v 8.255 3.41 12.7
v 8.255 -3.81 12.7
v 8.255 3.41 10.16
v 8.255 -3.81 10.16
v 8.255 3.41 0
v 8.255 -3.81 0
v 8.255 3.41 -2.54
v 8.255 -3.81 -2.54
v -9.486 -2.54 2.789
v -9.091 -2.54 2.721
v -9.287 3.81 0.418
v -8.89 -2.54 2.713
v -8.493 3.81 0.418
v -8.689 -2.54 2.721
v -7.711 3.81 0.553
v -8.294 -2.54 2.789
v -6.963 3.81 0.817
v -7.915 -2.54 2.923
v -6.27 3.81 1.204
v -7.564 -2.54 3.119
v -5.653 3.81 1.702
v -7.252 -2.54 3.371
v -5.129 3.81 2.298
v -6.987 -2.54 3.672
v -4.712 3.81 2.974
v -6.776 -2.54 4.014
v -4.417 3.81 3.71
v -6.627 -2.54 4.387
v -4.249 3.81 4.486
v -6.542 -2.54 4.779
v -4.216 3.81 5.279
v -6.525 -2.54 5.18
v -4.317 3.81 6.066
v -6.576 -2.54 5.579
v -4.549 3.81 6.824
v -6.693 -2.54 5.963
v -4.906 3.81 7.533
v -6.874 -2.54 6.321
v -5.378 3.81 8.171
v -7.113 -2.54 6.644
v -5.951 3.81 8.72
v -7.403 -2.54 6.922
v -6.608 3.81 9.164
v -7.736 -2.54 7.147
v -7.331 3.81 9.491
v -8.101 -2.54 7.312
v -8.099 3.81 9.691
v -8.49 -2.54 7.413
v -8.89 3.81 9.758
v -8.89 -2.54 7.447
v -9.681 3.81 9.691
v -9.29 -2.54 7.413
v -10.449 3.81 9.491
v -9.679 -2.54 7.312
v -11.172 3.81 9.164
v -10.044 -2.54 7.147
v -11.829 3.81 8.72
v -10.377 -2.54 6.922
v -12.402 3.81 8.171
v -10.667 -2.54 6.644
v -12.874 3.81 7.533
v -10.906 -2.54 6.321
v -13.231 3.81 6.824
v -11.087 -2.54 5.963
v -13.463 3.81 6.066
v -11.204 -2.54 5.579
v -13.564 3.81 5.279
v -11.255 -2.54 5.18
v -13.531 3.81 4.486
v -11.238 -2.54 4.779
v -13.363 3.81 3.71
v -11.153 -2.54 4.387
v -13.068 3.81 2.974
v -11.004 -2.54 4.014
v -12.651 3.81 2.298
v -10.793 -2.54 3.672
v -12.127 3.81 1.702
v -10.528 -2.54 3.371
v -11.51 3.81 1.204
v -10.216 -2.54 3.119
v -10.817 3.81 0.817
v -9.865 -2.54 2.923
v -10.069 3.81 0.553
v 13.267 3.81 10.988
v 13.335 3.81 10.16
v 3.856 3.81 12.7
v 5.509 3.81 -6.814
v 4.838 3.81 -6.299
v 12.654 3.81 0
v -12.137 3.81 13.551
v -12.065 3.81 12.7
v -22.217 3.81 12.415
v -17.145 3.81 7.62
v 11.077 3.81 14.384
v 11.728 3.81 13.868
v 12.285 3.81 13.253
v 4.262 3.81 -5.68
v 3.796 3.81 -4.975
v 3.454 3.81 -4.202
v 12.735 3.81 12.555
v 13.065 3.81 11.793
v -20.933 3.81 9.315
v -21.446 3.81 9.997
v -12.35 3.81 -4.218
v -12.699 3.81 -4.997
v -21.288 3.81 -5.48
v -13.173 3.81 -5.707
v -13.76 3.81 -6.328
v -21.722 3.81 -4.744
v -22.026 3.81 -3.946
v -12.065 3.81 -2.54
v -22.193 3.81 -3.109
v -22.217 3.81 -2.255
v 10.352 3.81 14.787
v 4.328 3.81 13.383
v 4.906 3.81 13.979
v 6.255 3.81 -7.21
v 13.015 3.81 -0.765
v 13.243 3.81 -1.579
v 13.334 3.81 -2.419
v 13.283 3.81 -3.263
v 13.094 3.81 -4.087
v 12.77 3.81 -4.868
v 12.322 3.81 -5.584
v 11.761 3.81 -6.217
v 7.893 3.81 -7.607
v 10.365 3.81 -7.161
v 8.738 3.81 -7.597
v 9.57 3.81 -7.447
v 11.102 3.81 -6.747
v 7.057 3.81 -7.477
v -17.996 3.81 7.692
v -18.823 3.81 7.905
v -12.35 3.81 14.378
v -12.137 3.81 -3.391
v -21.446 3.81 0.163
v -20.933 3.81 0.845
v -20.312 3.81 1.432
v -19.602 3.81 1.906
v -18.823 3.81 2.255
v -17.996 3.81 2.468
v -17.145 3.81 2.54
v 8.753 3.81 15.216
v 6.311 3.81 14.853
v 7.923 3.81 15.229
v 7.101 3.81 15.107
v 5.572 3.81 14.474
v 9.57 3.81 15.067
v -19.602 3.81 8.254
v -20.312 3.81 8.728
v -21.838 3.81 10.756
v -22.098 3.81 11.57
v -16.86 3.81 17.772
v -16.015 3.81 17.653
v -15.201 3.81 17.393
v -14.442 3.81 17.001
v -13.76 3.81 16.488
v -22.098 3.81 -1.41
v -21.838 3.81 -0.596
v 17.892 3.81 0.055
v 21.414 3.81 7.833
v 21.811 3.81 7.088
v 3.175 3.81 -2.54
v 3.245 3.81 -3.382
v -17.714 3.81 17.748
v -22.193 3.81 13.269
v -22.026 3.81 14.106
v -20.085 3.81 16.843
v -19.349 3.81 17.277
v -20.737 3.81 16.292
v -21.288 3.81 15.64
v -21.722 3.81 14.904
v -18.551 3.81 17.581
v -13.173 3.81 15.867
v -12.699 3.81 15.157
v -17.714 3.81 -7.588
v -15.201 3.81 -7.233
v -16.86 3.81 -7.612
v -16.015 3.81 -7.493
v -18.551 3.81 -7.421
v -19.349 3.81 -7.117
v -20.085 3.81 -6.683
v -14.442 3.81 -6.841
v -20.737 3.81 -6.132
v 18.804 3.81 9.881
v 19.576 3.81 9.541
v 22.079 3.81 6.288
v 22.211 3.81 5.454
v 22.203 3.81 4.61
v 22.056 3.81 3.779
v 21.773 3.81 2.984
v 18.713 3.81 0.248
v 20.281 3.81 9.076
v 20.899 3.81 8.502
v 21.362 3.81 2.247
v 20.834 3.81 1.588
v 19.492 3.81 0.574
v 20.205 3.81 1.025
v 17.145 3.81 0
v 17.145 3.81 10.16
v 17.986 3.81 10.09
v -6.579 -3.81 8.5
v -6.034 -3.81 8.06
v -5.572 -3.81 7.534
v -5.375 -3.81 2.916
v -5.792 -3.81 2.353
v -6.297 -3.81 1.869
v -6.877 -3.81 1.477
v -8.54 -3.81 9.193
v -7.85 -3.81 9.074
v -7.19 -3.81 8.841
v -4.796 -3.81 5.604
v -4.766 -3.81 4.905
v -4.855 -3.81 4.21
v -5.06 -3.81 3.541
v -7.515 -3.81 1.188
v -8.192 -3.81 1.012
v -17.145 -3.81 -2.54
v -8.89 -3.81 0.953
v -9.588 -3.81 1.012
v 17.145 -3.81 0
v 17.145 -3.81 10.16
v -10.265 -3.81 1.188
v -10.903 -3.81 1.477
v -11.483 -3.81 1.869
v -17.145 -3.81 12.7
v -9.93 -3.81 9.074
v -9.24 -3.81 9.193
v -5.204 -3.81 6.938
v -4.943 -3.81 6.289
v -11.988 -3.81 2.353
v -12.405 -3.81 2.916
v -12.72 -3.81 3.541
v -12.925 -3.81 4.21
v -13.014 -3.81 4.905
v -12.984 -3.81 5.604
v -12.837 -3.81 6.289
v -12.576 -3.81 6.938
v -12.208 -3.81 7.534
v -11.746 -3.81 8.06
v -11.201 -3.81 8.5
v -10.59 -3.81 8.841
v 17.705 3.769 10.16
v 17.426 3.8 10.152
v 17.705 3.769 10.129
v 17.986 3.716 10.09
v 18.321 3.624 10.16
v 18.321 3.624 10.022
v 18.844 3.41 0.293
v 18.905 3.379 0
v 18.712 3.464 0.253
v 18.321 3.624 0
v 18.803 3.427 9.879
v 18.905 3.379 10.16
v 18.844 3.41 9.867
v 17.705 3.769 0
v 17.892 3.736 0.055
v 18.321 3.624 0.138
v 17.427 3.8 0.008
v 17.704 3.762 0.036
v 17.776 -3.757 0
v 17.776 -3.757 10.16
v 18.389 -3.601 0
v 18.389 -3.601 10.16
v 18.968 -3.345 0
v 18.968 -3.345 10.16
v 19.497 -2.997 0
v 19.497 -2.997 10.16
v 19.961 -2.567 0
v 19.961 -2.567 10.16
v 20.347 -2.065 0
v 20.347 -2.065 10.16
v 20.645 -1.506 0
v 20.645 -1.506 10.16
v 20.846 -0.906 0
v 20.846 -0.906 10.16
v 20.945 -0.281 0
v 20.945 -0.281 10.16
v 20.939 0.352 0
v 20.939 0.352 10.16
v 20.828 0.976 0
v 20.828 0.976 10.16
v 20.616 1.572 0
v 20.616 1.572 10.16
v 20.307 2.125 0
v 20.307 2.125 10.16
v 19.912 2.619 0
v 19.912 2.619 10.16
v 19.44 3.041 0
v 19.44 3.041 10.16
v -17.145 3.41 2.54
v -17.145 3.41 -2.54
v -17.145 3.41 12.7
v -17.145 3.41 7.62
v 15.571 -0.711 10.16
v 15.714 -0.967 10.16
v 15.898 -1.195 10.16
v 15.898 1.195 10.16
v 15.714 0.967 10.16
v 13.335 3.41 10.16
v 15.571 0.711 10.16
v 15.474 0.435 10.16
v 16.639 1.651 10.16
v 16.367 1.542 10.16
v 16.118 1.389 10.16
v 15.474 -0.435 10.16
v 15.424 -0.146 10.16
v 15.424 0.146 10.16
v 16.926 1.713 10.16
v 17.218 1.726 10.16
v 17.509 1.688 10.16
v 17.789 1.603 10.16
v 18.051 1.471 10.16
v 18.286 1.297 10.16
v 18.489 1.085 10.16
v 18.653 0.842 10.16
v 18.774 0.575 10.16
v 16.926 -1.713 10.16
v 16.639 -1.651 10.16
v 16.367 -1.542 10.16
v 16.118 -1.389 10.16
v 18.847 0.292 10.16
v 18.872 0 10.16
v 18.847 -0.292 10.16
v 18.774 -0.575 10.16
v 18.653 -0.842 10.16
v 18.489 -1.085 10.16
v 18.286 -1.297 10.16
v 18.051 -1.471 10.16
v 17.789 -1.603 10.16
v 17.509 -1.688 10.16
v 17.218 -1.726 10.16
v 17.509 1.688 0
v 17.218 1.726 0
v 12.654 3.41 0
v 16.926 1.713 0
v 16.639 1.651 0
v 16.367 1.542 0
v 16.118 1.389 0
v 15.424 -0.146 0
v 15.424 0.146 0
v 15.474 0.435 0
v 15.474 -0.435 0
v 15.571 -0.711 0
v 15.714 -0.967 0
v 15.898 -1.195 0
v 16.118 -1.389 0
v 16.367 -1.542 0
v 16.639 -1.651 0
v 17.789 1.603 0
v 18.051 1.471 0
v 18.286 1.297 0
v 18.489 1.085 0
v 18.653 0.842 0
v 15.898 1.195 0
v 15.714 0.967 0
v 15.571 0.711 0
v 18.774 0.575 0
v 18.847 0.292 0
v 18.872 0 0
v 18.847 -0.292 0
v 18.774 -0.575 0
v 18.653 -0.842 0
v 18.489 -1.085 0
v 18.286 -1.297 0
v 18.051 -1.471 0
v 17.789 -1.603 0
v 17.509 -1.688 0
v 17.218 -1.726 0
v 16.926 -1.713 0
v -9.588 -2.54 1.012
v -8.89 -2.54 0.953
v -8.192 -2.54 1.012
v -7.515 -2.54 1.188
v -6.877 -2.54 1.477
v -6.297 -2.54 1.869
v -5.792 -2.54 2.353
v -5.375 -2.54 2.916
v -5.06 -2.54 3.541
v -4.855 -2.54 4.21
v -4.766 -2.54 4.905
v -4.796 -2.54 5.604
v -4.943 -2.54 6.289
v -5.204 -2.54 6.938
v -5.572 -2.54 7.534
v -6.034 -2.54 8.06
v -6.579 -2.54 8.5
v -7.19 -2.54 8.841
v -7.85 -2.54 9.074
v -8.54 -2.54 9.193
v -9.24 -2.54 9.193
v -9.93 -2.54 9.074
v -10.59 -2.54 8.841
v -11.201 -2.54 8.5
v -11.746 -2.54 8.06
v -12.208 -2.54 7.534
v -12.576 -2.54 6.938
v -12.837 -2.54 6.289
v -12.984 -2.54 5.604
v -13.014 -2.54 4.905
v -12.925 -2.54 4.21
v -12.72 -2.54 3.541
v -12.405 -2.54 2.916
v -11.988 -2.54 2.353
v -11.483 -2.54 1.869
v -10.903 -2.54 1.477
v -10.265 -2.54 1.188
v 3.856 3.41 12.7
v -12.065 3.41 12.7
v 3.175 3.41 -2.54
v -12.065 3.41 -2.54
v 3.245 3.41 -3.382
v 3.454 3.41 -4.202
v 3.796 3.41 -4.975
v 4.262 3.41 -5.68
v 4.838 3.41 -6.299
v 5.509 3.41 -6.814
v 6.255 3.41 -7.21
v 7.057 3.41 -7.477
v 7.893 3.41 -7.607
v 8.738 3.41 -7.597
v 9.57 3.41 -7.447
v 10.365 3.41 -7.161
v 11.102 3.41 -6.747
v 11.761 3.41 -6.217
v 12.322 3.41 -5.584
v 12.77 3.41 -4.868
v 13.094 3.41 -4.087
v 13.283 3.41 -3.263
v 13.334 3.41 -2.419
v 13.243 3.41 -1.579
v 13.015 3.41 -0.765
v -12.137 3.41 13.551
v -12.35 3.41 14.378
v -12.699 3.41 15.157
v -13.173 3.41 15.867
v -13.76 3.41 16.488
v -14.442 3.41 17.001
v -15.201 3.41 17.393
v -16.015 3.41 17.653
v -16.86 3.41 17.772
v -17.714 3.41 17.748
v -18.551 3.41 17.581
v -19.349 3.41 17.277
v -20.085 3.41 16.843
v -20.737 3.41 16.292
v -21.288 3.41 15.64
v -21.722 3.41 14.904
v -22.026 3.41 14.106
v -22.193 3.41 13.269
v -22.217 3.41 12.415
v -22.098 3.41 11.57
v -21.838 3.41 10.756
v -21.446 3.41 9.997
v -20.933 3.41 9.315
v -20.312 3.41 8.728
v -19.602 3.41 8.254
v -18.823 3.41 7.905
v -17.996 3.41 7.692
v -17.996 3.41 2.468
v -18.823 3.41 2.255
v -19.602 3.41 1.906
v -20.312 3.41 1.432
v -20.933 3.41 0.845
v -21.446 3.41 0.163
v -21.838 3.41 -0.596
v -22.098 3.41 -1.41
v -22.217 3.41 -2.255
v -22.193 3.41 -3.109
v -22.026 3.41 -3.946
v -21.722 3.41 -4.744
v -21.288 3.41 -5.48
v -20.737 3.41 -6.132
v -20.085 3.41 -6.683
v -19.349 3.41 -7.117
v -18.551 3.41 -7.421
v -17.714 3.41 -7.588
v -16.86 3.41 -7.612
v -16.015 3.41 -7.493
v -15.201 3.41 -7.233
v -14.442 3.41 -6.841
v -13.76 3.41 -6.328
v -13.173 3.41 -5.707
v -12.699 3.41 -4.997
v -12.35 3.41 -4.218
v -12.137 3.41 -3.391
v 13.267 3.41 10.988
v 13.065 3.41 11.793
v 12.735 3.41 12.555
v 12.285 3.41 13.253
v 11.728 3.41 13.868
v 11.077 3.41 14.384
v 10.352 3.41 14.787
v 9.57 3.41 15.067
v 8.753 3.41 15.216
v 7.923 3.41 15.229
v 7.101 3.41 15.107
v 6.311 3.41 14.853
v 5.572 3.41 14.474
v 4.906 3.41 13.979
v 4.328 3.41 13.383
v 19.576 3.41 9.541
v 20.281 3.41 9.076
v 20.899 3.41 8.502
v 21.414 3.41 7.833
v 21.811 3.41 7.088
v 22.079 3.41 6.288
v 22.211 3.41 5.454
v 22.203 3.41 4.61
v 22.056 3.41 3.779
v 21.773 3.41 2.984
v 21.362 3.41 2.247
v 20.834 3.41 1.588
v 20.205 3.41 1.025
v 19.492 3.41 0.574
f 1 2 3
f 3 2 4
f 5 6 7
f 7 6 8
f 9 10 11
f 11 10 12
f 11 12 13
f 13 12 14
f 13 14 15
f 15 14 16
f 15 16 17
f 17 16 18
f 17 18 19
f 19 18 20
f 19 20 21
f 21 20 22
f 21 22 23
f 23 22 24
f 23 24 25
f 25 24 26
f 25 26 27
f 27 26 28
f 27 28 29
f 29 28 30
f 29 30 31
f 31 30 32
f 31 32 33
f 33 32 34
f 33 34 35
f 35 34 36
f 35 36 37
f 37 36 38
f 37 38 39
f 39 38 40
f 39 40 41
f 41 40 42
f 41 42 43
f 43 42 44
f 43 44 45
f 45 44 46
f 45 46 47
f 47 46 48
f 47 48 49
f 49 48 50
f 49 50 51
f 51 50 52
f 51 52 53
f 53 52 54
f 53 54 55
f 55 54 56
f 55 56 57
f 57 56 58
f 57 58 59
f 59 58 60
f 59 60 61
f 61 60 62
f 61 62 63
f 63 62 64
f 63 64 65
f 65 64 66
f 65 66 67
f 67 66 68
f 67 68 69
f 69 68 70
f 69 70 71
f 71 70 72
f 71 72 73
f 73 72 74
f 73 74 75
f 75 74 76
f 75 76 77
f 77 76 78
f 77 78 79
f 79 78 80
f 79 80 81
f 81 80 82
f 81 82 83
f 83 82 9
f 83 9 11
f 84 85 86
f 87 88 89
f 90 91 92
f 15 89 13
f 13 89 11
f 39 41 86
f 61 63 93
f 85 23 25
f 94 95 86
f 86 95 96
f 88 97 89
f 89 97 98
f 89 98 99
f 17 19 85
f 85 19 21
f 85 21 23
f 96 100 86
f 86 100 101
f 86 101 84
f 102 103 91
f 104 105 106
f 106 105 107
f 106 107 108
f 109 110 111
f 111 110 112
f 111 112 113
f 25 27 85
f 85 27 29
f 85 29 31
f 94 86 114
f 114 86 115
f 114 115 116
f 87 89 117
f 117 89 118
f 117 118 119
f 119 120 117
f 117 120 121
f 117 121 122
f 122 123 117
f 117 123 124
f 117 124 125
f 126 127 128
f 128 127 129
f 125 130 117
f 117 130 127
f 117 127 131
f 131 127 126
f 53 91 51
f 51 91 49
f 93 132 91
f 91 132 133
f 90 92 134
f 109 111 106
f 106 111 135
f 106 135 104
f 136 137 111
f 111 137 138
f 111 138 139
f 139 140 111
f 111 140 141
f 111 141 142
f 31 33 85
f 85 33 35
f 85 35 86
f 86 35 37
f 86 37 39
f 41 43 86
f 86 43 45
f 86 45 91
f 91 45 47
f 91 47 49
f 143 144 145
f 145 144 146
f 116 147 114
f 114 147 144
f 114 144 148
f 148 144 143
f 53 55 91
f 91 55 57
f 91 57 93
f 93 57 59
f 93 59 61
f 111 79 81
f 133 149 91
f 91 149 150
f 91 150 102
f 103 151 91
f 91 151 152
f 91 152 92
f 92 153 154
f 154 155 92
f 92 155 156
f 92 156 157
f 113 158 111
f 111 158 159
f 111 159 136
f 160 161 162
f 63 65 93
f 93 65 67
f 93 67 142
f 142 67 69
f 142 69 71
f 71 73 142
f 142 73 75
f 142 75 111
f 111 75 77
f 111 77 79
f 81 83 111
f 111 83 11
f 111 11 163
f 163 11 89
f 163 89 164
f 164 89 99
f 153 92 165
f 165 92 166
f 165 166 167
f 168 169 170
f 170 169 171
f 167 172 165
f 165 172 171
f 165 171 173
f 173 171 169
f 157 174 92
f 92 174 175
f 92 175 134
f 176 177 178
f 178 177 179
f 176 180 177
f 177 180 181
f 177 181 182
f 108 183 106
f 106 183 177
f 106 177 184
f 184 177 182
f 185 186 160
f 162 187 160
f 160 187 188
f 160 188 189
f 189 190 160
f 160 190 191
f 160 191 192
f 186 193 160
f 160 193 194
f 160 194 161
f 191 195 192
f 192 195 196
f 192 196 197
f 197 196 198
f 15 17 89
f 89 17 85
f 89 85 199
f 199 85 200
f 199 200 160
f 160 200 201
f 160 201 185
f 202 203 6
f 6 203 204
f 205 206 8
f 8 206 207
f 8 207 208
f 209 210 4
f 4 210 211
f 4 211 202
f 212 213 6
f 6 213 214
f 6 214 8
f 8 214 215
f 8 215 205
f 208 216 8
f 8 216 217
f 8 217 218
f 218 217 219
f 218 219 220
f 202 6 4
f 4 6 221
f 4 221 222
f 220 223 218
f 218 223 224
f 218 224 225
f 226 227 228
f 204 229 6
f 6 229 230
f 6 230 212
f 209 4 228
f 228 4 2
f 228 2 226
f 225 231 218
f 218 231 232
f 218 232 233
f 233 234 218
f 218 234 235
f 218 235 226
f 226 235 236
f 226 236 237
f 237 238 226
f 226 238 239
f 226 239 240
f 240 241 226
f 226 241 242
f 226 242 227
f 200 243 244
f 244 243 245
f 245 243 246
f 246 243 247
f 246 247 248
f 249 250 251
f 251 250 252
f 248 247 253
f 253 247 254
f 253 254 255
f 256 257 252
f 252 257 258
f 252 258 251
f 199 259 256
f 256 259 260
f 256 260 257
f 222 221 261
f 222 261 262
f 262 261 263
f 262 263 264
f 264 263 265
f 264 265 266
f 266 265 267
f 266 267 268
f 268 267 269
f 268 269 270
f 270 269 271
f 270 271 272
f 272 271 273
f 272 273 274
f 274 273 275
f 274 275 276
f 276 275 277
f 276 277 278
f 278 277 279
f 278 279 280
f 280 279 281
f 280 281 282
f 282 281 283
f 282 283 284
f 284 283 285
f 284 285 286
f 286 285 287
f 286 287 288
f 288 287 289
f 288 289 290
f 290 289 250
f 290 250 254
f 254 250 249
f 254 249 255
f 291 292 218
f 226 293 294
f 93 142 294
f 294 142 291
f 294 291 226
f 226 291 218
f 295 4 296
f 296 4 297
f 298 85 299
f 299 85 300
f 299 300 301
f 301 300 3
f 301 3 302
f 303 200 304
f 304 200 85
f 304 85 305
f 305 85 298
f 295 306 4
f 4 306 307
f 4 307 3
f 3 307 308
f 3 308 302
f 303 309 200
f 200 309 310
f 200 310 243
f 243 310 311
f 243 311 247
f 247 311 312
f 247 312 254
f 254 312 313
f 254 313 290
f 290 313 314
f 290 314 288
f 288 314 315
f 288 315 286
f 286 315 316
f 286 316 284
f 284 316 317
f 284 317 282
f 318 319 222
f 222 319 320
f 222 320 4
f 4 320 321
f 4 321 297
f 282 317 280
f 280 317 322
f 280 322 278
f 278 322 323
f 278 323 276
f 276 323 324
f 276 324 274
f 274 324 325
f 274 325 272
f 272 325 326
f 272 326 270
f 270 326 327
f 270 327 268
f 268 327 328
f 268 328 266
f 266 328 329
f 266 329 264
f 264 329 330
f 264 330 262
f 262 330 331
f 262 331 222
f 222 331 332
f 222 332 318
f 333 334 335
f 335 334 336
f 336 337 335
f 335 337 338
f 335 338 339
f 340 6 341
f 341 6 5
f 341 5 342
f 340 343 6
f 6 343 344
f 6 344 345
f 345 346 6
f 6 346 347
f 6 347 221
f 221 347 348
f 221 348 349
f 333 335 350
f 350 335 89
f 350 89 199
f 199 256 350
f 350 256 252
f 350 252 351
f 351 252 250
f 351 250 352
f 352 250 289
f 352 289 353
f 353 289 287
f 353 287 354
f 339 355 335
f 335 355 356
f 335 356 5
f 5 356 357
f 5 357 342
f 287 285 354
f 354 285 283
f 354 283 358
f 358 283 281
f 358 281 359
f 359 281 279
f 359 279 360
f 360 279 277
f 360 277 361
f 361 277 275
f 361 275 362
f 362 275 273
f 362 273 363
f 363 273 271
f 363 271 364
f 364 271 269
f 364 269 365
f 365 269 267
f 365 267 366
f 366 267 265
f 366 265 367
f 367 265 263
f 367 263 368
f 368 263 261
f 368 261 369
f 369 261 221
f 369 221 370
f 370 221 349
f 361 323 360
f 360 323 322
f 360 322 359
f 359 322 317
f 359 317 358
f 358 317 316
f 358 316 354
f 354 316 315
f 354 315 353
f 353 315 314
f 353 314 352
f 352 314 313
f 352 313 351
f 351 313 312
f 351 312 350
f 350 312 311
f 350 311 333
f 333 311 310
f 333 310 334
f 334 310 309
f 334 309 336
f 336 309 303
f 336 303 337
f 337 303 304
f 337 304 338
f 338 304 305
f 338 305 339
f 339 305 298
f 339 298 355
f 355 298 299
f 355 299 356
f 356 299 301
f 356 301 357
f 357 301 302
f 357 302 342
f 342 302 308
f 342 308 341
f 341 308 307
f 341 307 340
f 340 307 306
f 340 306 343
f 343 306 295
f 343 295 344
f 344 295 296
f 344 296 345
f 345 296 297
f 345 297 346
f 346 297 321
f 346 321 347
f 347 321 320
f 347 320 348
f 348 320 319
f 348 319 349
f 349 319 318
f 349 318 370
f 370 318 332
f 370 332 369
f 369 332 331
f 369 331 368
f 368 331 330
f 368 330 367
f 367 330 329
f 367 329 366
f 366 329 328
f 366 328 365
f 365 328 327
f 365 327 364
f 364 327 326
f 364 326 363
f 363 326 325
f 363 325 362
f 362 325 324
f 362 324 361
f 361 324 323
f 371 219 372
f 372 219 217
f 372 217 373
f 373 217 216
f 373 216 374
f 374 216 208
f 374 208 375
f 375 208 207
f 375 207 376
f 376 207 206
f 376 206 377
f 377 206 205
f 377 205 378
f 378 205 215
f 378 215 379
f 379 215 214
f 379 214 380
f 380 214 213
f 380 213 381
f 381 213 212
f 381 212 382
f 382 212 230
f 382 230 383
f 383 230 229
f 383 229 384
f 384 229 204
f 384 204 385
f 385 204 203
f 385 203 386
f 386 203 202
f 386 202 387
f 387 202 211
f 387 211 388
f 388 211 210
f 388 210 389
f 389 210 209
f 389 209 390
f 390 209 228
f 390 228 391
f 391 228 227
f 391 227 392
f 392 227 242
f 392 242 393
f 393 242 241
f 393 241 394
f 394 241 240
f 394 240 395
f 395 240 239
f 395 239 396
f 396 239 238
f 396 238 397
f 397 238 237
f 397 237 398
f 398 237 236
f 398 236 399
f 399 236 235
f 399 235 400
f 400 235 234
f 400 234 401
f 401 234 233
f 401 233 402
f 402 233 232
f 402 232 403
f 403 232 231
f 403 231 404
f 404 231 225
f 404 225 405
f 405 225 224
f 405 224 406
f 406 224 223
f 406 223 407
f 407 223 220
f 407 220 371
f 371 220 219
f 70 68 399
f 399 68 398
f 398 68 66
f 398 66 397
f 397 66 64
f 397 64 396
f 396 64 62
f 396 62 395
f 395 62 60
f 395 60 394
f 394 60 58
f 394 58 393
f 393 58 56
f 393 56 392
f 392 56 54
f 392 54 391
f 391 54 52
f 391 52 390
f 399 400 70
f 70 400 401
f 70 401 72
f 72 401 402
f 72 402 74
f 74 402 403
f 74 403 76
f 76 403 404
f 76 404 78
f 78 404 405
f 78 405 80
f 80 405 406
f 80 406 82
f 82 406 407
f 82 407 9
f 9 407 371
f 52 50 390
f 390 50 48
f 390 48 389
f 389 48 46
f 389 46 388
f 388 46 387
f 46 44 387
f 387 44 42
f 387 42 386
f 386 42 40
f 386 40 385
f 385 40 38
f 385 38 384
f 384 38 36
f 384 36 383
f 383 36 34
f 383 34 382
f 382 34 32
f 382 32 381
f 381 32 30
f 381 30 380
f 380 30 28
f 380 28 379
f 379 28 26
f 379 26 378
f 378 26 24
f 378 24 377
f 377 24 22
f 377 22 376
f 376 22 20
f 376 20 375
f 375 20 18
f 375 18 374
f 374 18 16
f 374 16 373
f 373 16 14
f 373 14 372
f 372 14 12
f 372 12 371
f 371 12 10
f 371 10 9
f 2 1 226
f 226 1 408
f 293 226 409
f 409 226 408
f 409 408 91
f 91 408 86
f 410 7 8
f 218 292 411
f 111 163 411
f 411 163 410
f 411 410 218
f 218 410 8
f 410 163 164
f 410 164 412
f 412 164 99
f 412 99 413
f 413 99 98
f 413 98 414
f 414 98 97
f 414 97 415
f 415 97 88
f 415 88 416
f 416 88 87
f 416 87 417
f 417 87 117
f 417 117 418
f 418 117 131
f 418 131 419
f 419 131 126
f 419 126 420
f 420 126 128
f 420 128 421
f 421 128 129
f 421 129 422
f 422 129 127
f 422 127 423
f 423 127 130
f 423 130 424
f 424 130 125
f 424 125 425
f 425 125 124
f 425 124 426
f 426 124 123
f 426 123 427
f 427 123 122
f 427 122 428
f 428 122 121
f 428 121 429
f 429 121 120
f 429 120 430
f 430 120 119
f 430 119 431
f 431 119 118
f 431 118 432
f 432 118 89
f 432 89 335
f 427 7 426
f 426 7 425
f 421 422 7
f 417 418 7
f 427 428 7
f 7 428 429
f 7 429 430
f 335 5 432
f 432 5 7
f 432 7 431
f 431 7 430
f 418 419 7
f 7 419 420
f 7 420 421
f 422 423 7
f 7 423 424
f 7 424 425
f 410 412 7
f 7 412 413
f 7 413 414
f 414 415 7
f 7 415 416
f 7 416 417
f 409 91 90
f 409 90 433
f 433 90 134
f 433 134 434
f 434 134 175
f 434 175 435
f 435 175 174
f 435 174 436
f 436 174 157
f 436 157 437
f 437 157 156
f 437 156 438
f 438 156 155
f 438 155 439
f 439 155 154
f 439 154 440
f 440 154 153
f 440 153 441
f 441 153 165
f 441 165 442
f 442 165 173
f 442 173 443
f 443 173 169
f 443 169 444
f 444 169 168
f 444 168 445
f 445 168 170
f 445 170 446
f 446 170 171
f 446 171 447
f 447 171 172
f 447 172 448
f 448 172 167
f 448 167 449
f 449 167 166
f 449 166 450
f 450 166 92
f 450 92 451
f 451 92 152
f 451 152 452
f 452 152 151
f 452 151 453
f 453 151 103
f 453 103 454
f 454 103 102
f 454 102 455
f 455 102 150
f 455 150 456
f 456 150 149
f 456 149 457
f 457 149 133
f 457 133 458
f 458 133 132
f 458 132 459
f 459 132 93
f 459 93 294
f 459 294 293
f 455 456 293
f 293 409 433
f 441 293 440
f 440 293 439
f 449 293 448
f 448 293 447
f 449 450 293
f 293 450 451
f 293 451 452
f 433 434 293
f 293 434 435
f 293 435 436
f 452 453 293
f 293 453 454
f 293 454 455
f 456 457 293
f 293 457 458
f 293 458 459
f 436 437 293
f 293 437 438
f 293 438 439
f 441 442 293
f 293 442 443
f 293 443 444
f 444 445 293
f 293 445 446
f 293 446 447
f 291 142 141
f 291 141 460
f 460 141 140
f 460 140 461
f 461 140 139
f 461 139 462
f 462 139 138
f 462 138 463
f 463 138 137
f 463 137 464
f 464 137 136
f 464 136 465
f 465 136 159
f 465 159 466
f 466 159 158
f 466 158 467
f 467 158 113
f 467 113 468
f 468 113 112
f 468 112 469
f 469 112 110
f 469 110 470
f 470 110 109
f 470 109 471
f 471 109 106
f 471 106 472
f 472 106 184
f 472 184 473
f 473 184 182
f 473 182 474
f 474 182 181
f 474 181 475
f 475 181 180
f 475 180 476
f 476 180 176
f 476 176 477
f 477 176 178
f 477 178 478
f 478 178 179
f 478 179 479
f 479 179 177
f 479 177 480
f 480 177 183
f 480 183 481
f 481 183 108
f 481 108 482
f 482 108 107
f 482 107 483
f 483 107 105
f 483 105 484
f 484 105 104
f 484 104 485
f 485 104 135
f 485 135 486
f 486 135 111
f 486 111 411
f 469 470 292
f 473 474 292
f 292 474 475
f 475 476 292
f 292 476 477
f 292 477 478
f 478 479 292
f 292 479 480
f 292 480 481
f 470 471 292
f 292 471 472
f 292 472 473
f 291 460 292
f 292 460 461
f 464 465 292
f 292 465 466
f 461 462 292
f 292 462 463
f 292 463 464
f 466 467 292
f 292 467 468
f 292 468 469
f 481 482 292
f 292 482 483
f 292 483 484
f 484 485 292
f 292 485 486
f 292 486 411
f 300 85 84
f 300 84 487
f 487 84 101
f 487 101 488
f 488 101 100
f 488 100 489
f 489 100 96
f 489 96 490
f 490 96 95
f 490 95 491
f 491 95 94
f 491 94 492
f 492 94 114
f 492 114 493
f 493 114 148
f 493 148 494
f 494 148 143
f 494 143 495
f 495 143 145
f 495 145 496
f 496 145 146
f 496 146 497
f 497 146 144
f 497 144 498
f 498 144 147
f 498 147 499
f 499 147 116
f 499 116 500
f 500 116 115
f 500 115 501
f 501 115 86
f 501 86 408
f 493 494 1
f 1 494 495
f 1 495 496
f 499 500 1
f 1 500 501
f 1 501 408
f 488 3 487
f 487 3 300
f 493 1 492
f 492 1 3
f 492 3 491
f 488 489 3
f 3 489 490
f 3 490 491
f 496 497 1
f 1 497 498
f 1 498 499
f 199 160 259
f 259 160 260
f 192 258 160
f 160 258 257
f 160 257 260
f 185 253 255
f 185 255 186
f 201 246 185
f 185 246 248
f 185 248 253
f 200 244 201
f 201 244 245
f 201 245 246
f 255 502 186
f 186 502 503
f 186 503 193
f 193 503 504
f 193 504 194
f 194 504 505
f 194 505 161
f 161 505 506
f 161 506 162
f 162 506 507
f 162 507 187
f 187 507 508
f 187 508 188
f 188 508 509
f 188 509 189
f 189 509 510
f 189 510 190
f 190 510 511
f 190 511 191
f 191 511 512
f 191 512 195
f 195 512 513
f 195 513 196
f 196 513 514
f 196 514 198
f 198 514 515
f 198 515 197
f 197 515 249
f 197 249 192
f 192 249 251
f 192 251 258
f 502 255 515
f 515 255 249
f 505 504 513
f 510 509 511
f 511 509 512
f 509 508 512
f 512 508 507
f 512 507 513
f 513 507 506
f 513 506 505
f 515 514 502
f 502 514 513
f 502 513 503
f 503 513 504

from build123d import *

# Parameters (mm, degrees)
BOSS_EXTRUDE1_DEPTH   = 10.16
F_4_CLEARANCE_HOLE1_D = 3.4544
SKETCH4_R             = 1.905
CUT_EXTRUDE1_DEPTH    = 8.62
CUT_EXTRUDE1_TAPER    = -20
SKETCH5_R             = 4.1275
CUT_EXTRUDE2_DEPTH    = 1.27
SKETCH6_W             = 25.4
SKETCH6_H             = 2.54
BOSS_EXTRUDE2_DEPTH   = 7.62
SKETCH7_R             = 5.08
PRINTTABS_DEPTH       = 0.4


with BuildPart() as part:
    # Sketch1 → Boss-Extrude1 (new body)
    with BuildSketch(Plane.XY):
        with BuildLine():
            Line((-17.145, -3.81), (17.145, -3.81))
            ThreePointArc((17.145, -3.81), (20.955, 0), (17.145, 3.81))
            Line((17.145, 3.81), (-17.145, 3.81))
            Line((-17.145, 3.81), (-17.145, -3.81))
        make_face()
    extrude(amount=BOSS_EXTRUDE1_DEPTH)

    # #4 Clearance Hole1 (through all)
    with Locations(Plane.XY.offset(10.16)):
        with Locations((17.145, 0)):
            Hole(F_4_CLEARANCE_HOLE1_D / 2)

    # Sketch4 → Cut-Extrude1 (cut, through all)
    with BuildSketch(Plane(origin=(0, -3.81, 0), x_dir=(1, 0, 0), z_dir=(0, 1, 0))):
        with Locations((-8.89, -5.08)):
            Circle(SKETCH4_R)
    extrude(amount=CUT_EXTRUDE1_DEPTH, taper=CUT_EXTRUDE1_TAPER, mode=Mode.SUBTRACT)

    # Sketch5 → Cut-Extrude2 (cut)
    with BuildSketch(Plane.XZ.offset(3.81)):
        with Locations((-8.89, 5.08)):
            Circle(SKETCH5_R)
    extrude(amount=-CUT_EXTRUDE2_DEPTH, mode=Mode.SUBTRACT)

    # Sketch6 → Boss-Extrude2 (add, through all)
    with BuildSketch(Plane.XZ.offset(3.81)):
        with Locations((-4.445, 11.43)):
            Rectangle(SKETCH6_W, SKETCH6_H)
        with Locations((-4.445, -1.27)):
            Rectangle(SKETCH6_W, SKETCH6_H)
    extrude(amount=-BOSS_EXTRUDE2_DEPTH)

    # Sketch7 → PrintTabs (add)
    with BuildSketch(Plane(origin=(0, 3.81, 0), x_dir=(1, 0, 0), z_dir=(0, 1, 0))):
        with Locations((8.255, 2.54)):
            Circle(SKETCH7_R)
        with Locations((-17.145, -12.7)):
            Circle(SKETCH7_R)
        with Locations((-17.145, 2.54)):
            Circle(SKETCH7_R)
        with Locations((8.255, -10.16)):
            Circle(SKETCH7_R)
        with Locations((17.145, -5.08)):
            Circle(SKETCH7_R)
    extrude(amount=-PRINTTABS_DEPTH)


solid = part.part
